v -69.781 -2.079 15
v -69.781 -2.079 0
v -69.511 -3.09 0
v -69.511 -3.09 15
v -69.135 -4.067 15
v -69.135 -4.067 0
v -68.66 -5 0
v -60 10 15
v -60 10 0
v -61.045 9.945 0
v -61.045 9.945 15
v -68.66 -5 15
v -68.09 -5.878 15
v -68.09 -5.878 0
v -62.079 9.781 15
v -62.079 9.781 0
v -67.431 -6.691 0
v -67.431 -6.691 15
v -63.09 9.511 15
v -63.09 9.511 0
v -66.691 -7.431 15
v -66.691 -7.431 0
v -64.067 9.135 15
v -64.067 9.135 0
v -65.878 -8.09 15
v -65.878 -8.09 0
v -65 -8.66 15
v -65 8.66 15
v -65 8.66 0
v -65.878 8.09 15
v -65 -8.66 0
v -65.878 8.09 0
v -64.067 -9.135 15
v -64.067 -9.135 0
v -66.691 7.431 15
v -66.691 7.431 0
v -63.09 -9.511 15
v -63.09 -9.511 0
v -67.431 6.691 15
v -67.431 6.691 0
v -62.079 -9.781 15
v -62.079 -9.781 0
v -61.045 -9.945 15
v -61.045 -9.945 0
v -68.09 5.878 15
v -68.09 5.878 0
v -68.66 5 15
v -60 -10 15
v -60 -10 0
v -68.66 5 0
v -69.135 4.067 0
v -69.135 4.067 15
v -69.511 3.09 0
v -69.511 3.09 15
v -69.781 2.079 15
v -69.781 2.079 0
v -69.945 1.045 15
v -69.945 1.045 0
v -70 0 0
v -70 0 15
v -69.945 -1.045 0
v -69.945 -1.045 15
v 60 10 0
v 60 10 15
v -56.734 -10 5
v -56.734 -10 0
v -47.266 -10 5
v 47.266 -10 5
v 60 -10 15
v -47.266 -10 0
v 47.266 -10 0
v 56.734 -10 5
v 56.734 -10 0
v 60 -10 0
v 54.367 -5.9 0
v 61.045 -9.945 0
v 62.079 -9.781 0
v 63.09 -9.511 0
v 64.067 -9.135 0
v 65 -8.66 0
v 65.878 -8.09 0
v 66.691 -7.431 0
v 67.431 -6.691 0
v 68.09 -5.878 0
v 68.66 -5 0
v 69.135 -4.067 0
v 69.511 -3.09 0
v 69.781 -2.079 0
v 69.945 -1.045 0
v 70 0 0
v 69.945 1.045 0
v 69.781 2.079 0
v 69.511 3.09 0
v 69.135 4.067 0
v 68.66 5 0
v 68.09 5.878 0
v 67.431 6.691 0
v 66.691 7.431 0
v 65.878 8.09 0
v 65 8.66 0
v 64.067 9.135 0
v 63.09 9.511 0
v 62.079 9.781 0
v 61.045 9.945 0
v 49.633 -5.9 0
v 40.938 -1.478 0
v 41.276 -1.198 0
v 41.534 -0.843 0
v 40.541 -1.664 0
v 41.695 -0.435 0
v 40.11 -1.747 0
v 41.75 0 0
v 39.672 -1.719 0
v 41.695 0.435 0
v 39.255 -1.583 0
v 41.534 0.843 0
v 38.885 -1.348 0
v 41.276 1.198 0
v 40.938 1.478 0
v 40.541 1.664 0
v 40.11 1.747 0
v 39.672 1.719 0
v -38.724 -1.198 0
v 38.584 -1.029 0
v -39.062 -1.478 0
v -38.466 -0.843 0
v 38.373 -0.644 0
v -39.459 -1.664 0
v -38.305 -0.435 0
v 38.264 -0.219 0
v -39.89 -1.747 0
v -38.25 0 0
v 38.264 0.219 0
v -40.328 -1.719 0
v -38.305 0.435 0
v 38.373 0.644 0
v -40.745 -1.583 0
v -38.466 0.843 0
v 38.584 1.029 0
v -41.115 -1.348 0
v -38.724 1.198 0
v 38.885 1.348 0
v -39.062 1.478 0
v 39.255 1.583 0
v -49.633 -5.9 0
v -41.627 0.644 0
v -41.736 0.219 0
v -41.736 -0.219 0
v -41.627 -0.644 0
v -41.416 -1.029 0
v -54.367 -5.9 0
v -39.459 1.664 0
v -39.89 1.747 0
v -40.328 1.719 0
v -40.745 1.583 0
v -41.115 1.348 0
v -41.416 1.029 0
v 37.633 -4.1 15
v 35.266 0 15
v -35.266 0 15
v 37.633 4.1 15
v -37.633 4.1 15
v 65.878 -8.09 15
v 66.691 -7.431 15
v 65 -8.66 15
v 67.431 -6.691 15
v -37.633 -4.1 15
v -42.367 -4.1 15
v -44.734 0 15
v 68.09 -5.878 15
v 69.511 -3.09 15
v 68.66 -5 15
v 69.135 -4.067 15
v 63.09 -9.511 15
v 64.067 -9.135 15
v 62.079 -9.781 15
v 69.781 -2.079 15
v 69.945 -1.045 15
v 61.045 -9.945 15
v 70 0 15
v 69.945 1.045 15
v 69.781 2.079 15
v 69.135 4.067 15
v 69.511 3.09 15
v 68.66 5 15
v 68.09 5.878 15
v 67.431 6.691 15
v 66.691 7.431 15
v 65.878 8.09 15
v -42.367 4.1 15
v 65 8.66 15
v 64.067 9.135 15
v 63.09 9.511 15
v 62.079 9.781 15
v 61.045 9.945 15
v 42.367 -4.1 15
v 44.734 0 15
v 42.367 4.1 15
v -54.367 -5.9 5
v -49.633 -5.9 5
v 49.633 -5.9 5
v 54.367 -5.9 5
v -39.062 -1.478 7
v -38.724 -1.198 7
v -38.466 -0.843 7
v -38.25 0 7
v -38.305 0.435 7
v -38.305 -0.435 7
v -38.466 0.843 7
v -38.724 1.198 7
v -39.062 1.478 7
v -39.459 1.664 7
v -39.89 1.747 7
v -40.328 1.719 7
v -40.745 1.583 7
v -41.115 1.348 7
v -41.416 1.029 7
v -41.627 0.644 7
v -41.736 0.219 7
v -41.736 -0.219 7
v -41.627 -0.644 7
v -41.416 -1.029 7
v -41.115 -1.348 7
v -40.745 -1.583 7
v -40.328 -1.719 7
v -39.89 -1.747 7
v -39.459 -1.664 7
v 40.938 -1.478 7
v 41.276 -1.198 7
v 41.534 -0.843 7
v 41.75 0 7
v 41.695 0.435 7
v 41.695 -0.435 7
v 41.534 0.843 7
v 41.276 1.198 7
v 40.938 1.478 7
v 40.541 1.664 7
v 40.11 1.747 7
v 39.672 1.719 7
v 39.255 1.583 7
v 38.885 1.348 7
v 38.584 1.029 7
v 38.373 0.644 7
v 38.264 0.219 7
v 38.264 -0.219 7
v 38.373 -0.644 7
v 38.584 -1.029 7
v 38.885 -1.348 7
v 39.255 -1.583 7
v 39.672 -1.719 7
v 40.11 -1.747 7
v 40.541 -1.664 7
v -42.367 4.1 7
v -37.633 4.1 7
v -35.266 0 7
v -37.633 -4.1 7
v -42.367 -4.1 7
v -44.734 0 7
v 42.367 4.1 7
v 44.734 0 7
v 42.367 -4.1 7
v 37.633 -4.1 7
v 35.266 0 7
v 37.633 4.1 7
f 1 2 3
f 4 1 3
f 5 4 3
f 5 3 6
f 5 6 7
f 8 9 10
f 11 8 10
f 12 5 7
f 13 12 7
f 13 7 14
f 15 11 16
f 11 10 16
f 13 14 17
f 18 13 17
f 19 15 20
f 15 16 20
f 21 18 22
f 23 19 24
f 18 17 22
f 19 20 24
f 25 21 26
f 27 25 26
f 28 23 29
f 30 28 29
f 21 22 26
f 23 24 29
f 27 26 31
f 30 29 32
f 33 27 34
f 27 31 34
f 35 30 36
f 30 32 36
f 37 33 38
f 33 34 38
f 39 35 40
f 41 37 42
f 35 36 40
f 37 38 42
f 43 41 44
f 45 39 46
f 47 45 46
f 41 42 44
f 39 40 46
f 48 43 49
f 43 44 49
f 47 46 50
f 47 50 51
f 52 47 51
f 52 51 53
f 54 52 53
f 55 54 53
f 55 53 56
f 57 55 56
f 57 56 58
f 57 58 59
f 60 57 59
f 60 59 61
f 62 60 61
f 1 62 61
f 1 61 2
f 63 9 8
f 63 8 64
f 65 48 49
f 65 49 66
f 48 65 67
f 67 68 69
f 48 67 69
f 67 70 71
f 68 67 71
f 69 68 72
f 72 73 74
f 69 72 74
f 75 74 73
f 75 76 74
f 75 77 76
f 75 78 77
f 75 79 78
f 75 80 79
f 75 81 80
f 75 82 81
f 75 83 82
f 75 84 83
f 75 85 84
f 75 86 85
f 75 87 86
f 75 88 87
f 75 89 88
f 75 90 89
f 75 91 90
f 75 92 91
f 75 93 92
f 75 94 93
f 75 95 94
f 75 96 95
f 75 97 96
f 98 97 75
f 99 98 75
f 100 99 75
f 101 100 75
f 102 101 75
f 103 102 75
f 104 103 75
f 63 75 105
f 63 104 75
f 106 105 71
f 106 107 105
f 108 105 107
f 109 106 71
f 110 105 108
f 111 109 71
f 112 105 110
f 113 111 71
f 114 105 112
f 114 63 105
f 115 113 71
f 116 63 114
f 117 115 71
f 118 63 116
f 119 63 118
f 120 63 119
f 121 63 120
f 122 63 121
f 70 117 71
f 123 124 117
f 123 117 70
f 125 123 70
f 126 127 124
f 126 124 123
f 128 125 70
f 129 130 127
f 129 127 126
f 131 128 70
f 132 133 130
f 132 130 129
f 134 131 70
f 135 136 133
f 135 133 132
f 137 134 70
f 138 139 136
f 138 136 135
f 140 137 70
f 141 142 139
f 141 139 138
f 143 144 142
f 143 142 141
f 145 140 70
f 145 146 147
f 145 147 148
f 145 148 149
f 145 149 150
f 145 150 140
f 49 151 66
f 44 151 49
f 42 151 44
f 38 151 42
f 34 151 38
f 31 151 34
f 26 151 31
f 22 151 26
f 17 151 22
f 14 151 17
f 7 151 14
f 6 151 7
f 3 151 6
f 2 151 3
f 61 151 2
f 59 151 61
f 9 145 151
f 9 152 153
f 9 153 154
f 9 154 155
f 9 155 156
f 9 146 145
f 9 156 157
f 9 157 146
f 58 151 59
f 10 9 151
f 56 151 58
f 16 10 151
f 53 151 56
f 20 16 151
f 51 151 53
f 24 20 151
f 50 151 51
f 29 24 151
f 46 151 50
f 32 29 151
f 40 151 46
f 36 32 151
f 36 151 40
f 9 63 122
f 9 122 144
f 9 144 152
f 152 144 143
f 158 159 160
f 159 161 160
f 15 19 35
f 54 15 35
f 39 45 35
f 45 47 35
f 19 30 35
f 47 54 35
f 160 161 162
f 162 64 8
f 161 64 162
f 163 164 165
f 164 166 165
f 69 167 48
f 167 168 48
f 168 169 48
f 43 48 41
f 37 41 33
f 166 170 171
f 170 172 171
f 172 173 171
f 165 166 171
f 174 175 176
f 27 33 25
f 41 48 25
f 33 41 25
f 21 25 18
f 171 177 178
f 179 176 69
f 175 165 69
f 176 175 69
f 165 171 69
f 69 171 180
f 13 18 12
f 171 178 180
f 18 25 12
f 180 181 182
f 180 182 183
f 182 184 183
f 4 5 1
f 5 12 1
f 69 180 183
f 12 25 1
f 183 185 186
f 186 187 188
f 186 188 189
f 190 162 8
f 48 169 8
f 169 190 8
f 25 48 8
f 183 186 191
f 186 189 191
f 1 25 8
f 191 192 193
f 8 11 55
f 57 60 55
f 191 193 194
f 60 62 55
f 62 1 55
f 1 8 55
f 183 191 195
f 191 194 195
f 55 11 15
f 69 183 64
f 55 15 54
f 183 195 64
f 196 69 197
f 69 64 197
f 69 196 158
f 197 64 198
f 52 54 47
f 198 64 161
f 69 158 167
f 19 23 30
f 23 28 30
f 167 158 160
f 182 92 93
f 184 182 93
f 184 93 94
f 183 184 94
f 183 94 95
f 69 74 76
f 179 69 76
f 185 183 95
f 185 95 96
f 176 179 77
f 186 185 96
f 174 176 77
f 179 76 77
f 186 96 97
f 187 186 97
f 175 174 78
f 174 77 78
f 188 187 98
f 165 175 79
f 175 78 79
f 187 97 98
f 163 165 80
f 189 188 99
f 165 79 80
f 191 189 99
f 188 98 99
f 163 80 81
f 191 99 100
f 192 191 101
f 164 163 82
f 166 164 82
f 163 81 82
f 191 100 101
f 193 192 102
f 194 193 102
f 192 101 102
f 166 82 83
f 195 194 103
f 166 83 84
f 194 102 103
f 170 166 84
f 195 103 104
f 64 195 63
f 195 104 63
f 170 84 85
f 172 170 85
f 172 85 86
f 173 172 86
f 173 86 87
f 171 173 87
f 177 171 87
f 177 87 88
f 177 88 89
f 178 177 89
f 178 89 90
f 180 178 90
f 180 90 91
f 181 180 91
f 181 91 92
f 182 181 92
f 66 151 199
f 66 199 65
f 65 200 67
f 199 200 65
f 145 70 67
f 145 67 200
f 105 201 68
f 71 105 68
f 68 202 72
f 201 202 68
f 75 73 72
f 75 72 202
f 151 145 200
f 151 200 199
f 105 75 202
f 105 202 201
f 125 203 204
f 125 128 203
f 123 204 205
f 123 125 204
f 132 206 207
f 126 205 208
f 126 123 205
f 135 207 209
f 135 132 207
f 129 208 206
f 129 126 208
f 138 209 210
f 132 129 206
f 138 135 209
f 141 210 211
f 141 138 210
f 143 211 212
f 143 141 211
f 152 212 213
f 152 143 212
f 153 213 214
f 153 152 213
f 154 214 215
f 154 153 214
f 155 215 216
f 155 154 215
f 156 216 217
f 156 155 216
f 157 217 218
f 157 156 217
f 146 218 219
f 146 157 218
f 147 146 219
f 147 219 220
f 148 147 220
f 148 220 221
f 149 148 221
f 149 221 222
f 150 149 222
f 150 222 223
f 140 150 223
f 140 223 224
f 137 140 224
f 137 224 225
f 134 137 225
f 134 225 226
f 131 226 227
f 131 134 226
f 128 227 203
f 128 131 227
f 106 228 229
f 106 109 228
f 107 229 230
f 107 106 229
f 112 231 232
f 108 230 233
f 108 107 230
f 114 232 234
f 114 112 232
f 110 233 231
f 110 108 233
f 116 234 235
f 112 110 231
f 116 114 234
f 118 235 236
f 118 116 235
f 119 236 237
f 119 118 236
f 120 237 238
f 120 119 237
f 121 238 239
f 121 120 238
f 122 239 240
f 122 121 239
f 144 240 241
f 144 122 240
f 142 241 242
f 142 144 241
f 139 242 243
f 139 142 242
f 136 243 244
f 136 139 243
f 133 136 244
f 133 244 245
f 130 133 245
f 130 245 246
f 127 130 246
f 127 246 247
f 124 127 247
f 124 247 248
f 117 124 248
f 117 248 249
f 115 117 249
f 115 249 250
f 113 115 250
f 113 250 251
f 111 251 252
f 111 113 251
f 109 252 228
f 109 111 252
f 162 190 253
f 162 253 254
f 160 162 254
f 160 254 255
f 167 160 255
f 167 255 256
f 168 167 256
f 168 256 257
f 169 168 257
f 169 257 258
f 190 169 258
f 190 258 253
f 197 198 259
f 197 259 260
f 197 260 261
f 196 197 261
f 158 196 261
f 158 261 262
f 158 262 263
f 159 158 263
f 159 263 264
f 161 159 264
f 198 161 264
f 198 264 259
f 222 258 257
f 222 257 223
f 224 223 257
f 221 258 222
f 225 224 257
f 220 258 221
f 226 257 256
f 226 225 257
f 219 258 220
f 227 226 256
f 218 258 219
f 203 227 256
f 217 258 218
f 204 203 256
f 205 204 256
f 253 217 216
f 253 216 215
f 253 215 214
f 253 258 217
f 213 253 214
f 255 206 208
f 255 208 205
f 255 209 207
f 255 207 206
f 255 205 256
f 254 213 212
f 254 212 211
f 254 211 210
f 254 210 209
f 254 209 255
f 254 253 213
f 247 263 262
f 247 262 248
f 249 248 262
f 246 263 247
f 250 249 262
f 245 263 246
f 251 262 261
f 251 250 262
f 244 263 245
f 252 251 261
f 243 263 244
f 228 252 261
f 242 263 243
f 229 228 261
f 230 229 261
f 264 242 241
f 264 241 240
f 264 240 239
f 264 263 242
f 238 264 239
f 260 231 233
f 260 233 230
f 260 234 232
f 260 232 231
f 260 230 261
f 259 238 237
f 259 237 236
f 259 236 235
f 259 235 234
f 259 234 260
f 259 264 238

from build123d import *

# Parameters (mm, degrees)
SKETCH_R        = 1.75
PAD_DEPTH       = 15
POCKET_DEPTH    = 8
POCKET001_DEPTH = 5


with BuildPart() as part:
    # Sketch → Pad (new body)
    with BuildSketch(Plane.XY):
        with BuildLine():
            ThreePointArc((-60.000035, 10), (-70, -1.7e-05), (-60, -10))
            Line((-60, -10), (60, -10))
            ThreePointArc((60, -10), (70, 1.5e-05), (59.999971, 10))
            Line((-60.000035, 10), (59.999971, 10))
        make_face()
        with Locations((40, 0)):
            Circle(SKETCH_R, mode=Mode.SUBTRACT)
        with Locations((-40, 0)):
            Circle(SKETCH_R, mode=Mode.SUBTRACT)
    extrude(amount=PAD_DEPTH)

    # Sketch001 → Pocket (cut)
    with BuildSketch(Plane.XY.offset(15)):
        Polygon((-42.367136, 4.1), (-37.632864, 4.1), (-35.265728, 0), (-37.632864, -4.1), (-42.367136, -4.1), (-44.734272, 0), align=None)
        Polygon((37.632864, 4.1), (42.367136, 4.1), (44.734272, 0), (42.367136, -4.1), (37.632864, -4.1), (35.265728, 0), align=None)
    extrude(amount=-POCKET_DEPTH, mode=Mode.SUBTRACT)

    # Sketch002 → Pocket001 (cut)
    with BuildSketch(Plane(origin=(0, 0, 0), x_dir=(1, 0, 0), z_dir=(0, 0, -1))):
        Polygon((-54.367136, 14.1), (-49.632864, 14.1), (-47.265728, 10), (-49.632864, 5.9), (-54.367136, 5.9), (-56.734272, 10), align=None)
        Polygon((49.632864, 14.1), (54.367136, 14.1), (56.734272, 10), (54.367136, 5.9), (49.632864, 5.9), (47.265728, 10), align=None)
    extrude(amount=-POCKET001_DEPTH, mode=Mode.SUBTRACT)


solid = part.part
